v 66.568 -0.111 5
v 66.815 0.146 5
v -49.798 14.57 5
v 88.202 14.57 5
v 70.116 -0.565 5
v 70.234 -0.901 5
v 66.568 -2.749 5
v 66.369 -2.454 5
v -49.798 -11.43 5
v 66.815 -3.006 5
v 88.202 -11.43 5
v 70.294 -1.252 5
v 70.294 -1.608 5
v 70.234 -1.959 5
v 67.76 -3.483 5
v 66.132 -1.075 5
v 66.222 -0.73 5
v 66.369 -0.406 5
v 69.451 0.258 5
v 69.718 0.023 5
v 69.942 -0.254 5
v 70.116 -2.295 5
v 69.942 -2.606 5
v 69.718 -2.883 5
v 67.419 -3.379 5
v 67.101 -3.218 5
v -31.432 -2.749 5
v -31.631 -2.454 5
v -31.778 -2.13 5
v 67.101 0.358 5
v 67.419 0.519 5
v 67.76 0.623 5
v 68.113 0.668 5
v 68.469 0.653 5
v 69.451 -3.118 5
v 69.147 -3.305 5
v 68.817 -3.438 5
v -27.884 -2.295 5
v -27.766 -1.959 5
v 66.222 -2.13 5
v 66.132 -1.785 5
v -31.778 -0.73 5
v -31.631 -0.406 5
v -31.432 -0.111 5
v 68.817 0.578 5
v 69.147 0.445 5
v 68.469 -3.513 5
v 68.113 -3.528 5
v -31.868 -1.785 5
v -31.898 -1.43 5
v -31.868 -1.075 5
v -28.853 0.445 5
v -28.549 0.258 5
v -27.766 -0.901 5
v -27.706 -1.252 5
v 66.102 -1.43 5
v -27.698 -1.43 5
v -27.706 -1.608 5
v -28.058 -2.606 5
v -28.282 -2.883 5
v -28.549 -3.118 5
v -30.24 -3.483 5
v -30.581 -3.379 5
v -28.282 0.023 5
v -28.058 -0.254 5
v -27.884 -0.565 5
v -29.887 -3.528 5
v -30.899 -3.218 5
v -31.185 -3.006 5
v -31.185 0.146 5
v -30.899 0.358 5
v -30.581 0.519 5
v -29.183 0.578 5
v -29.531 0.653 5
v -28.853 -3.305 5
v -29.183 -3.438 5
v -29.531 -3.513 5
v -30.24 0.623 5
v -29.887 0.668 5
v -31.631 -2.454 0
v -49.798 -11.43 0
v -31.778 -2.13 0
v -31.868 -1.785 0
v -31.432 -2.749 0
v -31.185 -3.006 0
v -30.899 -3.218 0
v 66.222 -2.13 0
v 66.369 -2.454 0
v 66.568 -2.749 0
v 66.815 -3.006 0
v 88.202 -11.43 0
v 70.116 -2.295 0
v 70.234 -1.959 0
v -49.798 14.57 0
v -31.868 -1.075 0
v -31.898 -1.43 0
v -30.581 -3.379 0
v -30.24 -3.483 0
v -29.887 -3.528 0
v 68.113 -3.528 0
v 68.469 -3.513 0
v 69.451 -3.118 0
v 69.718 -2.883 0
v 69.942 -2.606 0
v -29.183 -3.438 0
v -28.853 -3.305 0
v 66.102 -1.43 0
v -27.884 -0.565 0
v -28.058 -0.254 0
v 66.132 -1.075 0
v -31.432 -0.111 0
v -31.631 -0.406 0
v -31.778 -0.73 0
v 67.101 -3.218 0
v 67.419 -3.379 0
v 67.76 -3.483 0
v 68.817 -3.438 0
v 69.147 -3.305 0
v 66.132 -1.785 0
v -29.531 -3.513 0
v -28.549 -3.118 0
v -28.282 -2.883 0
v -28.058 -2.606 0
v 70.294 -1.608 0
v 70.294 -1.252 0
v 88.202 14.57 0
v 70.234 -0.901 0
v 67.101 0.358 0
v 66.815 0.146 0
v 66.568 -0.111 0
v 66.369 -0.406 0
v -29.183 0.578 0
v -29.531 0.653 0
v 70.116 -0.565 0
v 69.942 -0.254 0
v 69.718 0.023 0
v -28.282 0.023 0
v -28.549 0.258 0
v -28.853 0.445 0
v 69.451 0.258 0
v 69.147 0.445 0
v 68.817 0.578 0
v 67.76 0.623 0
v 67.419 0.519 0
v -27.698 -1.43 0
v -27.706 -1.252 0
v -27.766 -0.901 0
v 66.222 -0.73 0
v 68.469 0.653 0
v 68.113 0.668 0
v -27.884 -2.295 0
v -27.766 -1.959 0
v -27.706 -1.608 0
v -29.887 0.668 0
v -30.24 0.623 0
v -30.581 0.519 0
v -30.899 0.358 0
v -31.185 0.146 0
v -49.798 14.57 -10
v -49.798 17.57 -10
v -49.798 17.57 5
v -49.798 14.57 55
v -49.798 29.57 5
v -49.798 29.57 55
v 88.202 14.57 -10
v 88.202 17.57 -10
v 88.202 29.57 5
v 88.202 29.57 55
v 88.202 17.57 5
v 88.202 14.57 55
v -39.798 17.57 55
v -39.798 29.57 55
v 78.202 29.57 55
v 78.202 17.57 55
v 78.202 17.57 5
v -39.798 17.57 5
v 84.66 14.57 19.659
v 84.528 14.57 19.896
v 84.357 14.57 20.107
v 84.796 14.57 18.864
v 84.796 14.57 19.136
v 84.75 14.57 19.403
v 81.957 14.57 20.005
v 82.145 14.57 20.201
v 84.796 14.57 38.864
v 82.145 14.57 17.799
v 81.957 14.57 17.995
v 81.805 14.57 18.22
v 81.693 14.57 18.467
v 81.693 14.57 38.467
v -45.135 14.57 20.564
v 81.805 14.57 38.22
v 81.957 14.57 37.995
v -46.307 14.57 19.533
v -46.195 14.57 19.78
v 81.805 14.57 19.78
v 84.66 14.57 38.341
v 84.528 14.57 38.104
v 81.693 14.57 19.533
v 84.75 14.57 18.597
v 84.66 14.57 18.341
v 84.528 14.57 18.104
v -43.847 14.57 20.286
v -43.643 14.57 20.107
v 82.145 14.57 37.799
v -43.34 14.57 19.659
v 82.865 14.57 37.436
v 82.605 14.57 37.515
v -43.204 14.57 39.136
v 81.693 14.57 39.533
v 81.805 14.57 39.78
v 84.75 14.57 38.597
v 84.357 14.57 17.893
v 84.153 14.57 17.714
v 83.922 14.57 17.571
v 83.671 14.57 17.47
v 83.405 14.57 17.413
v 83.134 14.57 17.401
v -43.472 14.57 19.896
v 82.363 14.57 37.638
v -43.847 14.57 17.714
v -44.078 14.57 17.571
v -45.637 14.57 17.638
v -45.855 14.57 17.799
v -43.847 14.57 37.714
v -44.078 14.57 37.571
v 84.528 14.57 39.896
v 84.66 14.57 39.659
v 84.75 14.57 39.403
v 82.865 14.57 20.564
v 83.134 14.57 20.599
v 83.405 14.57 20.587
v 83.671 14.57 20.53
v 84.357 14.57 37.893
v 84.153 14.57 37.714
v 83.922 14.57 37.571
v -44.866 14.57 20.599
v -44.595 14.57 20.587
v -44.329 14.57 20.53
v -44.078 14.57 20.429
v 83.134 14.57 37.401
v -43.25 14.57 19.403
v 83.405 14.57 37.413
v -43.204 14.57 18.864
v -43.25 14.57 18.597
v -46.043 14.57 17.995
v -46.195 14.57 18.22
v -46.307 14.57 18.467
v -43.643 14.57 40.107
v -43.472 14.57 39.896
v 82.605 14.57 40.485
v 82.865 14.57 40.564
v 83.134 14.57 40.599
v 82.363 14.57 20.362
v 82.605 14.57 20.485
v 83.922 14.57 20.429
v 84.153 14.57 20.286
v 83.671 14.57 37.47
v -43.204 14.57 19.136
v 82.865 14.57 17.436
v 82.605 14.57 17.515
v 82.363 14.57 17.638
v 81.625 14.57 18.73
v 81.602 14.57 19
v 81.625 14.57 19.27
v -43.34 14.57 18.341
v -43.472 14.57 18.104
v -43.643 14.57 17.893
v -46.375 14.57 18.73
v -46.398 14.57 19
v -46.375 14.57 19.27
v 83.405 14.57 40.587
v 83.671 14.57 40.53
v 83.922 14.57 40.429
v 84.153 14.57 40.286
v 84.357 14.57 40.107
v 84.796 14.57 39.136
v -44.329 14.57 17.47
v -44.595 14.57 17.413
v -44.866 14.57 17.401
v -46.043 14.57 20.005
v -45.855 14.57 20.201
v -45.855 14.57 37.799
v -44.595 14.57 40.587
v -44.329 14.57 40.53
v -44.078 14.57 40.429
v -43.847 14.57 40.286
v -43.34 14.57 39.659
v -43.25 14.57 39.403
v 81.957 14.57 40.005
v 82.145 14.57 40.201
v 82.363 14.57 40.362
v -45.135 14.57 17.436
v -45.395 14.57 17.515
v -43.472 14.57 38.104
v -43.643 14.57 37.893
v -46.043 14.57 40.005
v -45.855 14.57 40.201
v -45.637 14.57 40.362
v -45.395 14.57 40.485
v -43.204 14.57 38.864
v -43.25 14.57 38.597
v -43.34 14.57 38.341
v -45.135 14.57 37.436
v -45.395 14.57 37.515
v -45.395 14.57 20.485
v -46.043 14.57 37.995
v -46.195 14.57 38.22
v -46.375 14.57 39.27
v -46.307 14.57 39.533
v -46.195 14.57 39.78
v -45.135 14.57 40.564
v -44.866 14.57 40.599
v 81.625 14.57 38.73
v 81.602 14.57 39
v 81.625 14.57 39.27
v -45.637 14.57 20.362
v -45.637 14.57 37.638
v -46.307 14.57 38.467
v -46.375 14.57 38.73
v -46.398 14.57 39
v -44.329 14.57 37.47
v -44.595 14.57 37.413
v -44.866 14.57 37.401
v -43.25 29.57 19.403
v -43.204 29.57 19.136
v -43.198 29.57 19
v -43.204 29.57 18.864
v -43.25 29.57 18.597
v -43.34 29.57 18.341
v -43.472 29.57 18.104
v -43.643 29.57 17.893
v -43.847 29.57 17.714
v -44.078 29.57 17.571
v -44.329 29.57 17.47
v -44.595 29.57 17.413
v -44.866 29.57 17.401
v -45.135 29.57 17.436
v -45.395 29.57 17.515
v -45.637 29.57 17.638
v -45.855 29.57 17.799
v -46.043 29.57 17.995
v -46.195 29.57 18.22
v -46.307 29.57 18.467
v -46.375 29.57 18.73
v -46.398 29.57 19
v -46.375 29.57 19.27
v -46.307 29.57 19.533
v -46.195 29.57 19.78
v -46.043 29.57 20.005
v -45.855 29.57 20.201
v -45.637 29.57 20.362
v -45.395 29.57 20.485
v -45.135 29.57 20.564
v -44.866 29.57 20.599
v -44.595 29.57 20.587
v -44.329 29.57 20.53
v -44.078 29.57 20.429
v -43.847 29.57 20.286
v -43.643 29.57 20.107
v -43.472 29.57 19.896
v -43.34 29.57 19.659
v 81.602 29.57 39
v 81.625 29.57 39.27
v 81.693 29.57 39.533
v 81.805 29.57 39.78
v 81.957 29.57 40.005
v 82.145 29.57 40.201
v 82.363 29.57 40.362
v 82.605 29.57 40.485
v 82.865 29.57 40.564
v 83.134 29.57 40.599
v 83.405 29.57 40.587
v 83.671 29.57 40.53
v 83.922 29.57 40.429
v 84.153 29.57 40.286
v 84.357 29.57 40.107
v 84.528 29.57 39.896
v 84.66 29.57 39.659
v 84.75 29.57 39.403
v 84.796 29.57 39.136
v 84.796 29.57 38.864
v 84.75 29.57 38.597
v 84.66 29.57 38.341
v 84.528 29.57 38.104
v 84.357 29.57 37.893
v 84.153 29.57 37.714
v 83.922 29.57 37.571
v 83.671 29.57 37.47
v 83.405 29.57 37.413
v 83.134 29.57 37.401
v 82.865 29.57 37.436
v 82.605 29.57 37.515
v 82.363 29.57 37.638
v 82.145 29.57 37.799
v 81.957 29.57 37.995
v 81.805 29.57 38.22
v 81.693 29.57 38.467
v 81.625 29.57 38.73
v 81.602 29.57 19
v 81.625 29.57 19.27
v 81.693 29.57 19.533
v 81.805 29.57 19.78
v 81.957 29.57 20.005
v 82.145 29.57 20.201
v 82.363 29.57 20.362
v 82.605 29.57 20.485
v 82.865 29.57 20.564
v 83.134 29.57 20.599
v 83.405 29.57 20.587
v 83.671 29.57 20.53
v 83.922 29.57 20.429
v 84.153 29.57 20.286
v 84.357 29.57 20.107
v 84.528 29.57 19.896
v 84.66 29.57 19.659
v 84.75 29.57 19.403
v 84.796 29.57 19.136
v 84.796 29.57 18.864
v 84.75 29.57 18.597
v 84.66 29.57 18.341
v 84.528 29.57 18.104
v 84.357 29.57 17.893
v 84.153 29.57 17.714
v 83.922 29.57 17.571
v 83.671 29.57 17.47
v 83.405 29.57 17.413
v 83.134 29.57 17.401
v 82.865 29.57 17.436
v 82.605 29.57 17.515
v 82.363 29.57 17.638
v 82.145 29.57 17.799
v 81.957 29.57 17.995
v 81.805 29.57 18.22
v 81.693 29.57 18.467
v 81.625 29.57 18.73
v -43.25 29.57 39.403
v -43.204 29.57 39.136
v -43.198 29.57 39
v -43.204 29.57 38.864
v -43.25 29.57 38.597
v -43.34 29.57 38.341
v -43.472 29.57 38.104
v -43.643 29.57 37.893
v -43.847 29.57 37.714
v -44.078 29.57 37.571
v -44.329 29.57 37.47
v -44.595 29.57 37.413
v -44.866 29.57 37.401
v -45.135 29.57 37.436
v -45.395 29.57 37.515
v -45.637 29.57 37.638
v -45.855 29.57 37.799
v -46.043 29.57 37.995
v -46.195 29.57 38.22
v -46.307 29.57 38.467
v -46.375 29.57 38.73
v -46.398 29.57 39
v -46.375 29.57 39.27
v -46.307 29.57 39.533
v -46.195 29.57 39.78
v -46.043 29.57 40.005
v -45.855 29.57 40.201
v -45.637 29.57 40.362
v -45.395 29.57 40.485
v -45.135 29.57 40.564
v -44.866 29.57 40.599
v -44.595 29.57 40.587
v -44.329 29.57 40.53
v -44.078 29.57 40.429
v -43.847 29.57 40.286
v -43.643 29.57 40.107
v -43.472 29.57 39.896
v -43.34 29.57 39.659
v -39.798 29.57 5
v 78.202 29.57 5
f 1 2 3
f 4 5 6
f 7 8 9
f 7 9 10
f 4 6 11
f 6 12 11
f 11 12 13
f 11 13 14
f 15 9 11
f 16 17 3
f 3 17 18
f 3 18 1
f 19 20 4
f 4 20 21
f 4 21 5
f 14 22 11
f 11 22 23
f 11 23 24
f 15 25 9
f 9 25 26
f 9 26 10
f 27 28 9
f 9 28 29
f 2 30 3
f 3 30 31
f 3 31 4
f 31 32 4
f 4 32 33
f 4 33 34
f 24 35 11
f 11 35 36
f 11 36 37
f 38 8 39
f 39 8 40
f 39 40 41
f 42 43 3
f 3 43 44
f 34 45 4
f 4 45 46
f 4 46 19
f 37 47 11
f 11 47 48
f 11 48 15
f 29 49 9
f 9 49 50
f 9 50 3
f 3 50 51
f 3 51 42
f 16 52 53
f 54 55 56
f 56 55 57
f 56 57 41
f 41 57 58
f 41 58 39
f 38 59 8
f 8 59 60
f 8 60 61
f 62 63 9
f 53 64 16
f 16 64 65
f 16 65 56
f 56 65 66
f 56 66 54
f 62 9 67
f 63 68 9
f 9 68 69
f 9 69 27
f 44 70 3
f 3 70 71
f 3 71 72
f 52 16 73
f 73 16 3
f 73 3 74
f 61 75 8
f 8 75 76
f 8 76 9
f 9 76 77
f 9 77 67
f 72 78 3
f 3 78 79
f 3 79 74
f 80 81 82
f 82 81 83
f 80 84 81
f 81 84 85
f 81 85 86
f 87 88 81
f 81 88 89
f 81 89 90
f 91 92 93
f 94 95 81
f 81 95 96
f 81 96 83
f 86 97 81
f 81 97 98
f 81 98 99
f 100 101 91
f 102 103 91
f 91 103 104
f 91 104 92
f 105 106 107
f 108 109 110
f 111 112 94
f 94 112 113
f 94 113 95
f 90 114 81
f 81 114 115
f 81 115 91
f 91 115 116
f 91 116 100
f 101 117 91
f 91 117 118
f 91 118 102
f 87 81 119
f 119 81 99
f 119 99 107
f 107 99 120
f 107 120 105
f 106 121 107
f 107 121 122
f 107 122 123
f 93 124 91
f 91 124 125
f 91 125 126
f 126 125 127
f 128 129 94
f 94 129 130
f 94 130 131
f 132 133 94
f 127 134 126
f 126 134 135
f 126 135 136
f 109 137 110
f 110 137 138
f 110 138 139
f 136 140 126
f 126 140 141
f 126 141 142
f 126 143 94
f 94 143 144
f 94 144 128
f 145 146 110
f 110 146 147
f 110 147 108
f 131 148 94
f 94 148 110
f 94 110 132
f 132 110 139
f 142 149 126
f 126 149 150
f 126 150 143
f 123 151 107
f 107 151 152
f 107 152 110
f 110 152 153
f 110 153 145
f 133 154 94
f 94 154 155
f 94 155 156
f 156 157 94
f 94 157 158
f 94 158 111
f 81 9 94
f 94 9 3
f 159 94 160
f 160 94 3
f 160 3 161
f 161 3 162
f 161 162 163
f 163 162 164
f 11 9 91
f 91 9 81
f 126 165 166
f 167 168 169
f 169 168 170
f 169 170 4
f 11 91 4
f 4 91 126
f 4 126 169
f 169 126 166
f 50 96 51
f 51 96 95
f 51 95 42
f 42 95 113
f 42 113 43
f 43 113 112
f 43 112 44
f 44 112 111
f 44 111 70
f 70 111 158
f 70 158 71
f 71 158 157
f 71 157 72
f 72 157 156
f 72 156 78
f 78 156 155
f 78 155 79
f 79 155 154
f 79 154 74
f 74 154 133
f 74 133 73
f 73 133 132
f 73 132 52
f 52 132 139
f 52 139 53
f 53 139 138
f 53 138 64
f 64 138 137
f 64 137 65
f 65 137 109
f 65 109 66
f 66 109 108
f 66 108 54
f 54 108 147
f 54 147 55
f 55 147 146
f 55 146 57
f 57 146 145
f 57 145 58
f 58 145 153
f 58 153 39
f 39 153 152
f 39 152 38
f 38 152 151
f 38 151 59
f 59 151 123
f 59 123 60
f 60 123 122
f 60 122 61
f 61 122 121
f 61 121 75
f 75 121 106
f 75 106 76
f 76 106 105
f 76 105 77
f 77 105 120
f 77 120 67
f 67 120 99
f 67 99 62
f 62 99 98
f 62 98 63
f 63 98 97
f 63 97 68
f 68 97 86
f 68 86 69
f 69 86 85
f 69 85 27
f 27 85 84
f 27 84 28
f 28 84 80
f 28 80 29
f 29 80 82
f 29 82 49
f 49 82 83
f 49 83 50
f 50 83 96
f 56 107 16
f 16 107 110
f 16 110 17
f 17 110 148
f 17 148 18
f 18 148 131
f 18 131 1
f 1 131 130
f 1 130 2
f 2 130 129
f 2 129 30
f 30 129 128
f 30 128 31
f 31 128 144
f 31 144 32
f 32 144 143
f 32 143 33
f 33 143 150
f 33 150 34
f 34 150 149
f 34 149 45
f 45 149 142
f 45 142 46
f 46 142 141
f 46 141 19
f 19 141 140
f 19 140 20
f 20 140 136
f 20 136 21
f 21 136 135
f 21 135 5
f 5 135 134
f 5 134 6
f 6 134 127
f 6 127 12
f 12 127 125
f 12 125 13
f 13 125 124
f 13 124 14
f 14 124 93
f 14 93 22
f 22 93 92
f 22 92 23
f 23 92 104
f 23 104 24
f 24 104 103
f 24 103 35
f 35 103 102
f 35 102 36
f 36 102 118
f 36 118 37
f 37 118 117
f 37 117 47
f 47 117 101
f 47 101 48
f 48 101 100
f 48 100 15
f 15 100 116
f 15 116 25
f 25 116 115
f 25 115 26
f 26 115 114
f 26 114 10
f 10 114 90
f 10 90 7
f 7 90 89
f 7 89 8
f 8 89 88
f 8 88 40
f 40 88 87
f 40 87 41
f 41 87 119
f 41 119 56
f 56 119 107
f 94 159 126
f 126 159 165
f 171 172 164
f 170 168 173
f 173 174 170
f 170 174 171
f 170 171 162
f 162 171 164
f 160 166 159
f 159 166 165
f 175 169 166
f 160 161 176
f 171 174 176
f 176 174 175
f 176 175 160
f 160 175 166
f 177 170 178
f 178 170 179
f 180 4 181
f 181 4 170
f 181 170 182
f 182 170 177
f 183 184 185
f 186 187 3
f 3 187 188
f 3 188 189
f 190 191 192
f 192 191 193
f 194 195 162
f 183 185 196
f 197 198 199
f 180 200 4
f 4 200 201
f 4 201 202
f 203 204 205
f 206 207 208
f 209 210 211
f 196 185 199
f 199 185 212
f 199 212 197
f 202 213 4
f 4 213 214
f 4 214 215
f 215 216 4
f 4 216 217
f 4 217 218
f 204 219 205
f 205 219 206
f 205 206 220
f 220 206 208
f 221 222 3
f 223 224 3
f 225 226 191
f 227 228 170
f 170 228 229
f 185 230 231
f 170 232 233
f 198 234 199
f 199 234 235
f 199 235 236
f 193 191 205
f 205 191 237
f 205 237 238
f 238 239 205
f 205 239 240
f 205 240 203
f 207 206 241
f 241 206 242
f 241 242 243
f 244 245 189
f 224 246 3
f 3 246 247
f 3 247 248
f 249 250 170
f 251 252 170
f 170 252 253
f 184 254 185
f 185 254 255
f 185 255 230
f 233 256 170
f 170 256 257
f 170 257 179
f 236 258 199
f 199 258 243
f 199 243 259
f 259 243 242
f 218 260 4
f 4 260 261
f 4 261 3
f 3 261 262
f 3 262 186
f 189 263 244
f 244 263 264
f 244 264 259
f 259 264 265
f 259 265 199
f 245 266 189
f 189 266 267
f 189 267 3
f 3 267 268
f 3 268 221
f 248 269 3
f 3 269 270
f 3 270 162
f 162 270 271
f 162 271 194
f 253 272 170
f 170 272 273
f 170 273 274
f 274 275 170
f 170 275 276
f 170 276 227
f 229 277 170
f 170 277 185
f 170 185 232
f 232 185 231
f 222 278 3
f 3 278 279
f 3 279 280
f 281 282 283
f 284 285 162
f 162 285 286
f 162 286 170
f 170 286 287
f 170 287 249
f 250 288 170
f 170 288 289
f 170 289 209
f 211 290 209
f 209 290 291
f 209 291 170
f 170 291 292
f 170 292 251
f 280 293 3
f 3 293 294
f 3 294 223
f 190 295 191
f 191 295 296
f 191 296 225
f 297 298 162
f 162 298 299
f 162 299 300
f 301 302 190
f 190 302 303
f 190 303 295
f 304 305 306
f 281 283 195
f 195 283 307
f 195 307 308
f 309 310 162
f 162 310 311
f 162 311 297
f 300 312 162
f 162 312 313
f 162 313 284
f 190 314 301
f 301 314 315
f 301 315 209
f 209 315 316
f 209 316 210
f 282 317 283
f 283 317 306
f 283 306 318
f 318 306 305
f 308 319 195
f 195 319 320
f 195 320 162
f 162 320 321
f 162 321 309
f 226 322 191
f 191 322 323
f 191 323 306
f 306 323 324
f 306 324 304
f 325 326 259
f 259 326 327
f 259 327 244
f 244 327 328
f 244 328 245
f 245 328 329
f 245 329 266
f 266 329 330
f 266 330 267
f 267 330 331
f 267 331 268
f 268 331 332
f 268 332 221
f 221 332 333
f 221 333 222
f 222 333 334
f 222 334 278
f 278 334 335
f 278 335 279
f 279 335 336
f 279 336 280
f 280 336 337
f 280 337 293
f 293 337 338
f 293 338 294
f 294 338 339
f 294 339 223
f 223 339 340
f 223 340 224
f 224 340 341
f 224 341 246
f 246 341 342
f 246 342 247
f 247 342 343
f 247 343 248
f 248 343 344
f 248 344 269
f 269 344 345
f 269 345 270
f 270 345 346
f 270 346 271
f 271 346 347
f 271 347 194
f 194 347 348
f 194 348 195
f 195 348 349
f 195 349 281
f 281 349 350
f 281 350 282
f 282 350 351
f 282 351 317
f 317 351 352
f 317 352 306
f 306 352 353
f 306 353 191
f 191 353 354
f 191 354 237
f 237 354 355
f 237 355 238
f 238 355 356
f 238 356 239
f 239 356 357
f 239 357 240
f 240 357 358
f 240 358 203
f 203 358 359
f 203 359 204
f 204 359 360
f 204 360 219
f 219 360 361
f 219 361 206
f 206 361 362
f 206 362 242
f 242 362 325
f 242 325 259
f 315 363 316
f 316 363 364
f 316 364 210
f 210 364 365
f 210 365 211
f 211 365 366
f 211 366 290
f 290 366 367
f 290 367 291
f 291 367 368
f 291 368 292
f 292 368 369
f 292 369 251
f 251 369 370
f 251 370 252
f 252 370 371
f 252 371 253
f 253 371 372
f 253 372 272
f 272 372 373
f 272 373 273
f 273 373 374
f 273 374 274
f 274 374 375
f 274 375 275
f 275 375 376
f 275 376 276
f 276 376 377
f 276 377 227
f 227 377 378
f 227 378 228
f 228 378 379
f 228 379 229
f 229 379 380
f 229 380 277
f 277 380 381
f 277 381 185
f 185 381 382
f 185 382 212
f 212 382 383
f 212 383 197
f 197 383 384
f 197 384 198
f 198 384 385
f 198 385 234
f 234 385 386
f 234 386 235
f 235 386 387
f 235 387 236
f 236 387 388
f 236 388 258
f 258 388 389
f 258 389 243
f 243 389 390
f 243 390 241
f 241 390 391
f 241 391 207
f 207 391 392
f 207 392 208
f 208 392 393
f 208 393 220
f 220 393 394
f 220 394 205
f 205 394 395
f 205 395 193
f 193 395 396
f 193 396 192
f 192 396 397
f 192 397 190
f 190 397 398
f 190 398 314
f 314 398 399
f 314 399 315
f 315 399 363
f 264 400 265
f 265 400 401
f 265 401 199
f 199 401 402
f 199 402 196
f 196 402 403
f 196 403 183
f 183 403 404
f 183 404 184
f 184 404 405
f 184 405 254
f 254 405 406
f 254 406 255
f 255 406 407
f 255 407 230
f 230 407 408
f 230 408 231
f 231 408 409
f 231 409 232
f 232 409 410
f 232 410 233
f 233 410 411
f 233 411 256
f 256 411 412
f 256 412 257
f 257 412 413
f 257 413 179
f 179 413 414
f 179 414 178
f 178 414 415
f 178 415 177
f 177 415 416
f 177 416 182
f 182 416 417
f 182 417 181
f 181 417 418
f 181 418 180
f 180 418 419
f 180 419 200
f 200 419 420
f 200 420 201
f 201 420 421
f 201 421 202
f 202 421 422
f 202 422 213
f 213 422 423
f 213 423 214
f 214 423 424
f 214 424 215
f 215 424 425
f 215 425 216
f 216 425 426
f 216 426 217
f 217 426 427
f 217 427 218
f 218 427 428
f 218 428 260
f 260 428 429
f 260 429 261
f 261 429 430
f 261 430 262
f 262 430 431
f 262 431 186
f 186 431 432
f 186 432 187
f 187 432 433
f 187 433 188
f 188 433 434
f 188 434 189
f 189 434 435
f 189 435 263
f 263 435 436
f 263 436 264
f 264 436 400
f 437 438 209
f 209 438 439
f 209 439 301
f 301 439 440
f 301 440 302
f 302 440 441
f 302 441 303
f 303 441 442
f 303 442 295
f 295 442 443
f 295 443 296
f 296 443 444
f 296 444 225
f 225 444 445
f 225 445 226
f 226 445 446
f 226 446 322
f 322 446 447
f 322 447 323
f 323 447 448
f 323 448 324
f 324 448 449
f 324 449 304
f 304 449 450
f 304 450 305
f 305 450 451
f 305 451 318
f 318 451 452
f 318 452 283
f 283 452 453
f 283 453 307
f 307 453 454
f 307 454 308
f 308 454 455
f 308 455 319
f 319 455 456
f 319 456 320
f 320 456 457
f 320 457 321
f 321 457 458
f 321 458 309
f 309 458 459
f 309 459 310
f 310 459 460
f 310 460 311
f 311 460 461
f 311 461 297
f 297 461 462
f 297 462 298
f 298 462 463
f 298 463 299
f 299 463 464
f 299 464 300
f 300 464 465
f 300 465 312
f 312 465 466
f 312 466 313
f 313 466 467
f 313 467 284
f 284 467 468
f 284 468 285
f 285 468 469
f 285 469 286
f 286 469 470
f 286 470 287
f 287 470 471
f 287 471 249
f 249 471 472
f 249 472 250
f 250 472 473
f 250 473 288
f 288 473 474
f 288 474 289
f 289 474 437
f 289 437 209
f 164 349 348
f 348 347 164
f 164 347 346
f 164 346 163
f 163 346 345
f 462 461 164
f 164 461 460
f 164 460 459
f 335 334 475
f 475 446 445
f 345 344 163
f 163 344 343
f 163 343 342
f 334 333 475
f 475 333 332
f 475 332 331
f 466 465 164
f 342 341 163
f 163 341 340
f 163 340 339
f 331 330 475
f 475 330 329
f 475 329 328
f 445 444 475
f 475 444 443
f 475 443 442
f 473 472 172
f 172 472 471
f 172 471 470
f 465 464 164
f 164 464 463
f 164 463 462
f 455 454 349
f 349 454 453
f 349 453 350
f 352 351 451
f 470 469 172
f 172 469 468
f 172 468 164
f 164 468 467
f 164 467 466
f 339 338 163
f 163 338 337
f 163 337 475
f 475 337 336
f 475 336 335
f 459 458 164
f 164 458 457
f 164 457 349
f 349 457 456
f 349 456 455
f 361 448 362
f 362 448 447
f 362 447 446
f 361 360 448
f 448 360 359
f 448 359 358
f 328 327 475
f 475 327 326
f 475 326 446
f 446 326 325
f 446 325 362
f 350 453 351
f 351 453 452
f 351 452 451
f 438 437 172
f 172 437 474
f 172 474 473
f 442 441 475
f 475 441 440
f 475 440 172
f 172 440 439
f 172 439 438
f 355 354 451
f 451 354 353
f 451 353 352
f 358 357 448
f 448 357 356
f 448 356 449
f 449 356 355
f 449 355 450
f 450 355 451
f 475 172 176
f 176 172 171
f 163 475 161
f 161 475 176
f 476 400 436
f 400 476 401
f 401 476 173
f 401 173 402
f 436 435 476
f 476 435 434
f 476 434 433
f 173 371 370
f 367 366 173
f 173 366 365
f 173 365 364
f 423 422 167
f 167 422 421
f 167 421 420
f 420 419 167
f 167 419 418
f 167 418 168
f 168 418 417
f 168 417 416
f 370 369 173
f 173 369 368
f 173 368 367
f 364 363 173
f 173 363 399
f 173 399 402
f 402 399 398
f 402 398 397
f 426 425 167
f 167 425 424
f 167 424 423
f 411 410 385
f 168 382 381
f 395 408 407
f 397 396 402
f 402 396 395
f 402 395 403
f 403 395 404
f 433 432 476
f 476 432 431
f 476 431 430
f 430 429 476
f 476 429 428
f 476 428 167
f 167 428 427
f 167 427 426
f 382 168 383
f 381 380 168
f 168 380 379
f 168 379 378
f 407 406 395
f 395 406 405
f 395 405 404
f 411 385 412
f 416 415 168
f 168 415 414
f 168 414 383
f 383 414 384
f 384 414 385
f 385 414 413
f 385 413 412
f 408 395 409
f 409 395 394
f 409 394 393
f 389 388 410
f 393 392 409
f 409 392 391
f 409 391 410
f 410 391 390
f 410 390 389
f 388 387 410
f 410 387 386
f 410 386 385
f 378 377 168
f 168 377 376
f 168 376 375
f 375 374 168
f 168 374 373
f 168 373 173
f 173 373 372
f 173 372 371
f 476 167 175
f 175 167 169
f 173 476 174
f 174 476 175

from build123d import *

# Parameters (mm, degrees)
SKETCH_1_W          = 138
SKETCH_1_H          = 26
SKETCH_1_R          = 2.1
EXTRUDE_1_DEPTH     = 5
SKETCH_2_W          = 138
SKETCH_2_H          = 65
EXTRUDE_2_DEPTH     = 3
SKETCH_3_R          = 1.6
CUT_EXTRUDE_1_DEPTH = 3
SKETCH_4_W          = 10
SKETCH_4_H          = 50
SKETCH_4_R          = 1.6
EXTRUDE_3_DEPTH     = 12


with BuildPart() as part:
    # 草图1 → 凸台-拉伸1 (new body)
    with BuildSketch(Plane.XY):
        with Locations((19.202020202, 1.570004208)):
            Rectangle(SKETCH_1_W, SKETCH_1_H)
        with Locations((-29.797979798, -1.429995792)):
            Circle(SKETCH_1_R, mode=Mode.SUBTRACT)
        with Locations((68.202020202, -1.429995792)):
            Circle(SKETCH_1_R, mode=Mode.SUBTRACT)
    extrude(amount=EXTRUDE_1_DEPTH)

    # 草图2 → 凸台-拉伸2 (add)
    with BuildSketch(Plane(origin=(0, 14.570004208, 0), x_dir=(1, 0, 0), z_dir=(0, 1, 0))):
        with Locations((19.202020202, -22.5)):
            Rectangle(SKETCH_2_W, SKETCH_2_H)
    extrude(amount=EXTRUDE_2_DEPTH)

    # 草图3 → 切除-拉伸1 (cut)
    with BuildSketch(Plane(origin=(0, 17.570004208, 0), x_dir=(1, 0, 0), z_dir=(0, 1, 0))):
        with Locations((-44.797979798, -19)):
            Circle(SKETCH_3_R)
        with Locations((-44.797979798, -39)):
            Circle(SKETCH_3_R)
        with Locations((83.202020202, -19)):
            Circle(SKETCH_3_R)
        with Locations((83.202020202, -39)):
            Circle(SKETCH_3_R)
    extrude(amount=-CUT_EXTRUDE_1_DEPTH, mode=Mode.SUBTRACT)

    # 草图4 → 凸台-拉伸3 (add)
    with BuildSketch(Plane(origin=(0, 17.570004208, 0), x_dir=(1, 0, 0), z_dir=(0, 1, 0))):
        with Locations((83.202020202, -30)):
            Rectangle(SKETCH_4_W, SKETCH_4_H)
        with Locations((83.202020202, -19)):
            Circle(SKETCH_4_R, mode=Mode.SUBTRACT)
        with Locations((83.202020202, -39)):
            Circle(SKETCH_4_R, mode=Mode.SUBTRACT)
        with Locations((-44.797979798, -30)):
            Rectangle(SKETCH_4_W, SKETCH_4_H)
        with Locations((-44.797979798, -39)):
            Circle(SKETCH_4_R, mode=Mode.SUBTRACT)
        with Locations((-44.797979798, -19)):
            Circle(SKETCH_4_R, mode=Mode.SUBTRACT)
    extrude(amount=EXTRUDE_3_DEPTH)


solid = part.part
